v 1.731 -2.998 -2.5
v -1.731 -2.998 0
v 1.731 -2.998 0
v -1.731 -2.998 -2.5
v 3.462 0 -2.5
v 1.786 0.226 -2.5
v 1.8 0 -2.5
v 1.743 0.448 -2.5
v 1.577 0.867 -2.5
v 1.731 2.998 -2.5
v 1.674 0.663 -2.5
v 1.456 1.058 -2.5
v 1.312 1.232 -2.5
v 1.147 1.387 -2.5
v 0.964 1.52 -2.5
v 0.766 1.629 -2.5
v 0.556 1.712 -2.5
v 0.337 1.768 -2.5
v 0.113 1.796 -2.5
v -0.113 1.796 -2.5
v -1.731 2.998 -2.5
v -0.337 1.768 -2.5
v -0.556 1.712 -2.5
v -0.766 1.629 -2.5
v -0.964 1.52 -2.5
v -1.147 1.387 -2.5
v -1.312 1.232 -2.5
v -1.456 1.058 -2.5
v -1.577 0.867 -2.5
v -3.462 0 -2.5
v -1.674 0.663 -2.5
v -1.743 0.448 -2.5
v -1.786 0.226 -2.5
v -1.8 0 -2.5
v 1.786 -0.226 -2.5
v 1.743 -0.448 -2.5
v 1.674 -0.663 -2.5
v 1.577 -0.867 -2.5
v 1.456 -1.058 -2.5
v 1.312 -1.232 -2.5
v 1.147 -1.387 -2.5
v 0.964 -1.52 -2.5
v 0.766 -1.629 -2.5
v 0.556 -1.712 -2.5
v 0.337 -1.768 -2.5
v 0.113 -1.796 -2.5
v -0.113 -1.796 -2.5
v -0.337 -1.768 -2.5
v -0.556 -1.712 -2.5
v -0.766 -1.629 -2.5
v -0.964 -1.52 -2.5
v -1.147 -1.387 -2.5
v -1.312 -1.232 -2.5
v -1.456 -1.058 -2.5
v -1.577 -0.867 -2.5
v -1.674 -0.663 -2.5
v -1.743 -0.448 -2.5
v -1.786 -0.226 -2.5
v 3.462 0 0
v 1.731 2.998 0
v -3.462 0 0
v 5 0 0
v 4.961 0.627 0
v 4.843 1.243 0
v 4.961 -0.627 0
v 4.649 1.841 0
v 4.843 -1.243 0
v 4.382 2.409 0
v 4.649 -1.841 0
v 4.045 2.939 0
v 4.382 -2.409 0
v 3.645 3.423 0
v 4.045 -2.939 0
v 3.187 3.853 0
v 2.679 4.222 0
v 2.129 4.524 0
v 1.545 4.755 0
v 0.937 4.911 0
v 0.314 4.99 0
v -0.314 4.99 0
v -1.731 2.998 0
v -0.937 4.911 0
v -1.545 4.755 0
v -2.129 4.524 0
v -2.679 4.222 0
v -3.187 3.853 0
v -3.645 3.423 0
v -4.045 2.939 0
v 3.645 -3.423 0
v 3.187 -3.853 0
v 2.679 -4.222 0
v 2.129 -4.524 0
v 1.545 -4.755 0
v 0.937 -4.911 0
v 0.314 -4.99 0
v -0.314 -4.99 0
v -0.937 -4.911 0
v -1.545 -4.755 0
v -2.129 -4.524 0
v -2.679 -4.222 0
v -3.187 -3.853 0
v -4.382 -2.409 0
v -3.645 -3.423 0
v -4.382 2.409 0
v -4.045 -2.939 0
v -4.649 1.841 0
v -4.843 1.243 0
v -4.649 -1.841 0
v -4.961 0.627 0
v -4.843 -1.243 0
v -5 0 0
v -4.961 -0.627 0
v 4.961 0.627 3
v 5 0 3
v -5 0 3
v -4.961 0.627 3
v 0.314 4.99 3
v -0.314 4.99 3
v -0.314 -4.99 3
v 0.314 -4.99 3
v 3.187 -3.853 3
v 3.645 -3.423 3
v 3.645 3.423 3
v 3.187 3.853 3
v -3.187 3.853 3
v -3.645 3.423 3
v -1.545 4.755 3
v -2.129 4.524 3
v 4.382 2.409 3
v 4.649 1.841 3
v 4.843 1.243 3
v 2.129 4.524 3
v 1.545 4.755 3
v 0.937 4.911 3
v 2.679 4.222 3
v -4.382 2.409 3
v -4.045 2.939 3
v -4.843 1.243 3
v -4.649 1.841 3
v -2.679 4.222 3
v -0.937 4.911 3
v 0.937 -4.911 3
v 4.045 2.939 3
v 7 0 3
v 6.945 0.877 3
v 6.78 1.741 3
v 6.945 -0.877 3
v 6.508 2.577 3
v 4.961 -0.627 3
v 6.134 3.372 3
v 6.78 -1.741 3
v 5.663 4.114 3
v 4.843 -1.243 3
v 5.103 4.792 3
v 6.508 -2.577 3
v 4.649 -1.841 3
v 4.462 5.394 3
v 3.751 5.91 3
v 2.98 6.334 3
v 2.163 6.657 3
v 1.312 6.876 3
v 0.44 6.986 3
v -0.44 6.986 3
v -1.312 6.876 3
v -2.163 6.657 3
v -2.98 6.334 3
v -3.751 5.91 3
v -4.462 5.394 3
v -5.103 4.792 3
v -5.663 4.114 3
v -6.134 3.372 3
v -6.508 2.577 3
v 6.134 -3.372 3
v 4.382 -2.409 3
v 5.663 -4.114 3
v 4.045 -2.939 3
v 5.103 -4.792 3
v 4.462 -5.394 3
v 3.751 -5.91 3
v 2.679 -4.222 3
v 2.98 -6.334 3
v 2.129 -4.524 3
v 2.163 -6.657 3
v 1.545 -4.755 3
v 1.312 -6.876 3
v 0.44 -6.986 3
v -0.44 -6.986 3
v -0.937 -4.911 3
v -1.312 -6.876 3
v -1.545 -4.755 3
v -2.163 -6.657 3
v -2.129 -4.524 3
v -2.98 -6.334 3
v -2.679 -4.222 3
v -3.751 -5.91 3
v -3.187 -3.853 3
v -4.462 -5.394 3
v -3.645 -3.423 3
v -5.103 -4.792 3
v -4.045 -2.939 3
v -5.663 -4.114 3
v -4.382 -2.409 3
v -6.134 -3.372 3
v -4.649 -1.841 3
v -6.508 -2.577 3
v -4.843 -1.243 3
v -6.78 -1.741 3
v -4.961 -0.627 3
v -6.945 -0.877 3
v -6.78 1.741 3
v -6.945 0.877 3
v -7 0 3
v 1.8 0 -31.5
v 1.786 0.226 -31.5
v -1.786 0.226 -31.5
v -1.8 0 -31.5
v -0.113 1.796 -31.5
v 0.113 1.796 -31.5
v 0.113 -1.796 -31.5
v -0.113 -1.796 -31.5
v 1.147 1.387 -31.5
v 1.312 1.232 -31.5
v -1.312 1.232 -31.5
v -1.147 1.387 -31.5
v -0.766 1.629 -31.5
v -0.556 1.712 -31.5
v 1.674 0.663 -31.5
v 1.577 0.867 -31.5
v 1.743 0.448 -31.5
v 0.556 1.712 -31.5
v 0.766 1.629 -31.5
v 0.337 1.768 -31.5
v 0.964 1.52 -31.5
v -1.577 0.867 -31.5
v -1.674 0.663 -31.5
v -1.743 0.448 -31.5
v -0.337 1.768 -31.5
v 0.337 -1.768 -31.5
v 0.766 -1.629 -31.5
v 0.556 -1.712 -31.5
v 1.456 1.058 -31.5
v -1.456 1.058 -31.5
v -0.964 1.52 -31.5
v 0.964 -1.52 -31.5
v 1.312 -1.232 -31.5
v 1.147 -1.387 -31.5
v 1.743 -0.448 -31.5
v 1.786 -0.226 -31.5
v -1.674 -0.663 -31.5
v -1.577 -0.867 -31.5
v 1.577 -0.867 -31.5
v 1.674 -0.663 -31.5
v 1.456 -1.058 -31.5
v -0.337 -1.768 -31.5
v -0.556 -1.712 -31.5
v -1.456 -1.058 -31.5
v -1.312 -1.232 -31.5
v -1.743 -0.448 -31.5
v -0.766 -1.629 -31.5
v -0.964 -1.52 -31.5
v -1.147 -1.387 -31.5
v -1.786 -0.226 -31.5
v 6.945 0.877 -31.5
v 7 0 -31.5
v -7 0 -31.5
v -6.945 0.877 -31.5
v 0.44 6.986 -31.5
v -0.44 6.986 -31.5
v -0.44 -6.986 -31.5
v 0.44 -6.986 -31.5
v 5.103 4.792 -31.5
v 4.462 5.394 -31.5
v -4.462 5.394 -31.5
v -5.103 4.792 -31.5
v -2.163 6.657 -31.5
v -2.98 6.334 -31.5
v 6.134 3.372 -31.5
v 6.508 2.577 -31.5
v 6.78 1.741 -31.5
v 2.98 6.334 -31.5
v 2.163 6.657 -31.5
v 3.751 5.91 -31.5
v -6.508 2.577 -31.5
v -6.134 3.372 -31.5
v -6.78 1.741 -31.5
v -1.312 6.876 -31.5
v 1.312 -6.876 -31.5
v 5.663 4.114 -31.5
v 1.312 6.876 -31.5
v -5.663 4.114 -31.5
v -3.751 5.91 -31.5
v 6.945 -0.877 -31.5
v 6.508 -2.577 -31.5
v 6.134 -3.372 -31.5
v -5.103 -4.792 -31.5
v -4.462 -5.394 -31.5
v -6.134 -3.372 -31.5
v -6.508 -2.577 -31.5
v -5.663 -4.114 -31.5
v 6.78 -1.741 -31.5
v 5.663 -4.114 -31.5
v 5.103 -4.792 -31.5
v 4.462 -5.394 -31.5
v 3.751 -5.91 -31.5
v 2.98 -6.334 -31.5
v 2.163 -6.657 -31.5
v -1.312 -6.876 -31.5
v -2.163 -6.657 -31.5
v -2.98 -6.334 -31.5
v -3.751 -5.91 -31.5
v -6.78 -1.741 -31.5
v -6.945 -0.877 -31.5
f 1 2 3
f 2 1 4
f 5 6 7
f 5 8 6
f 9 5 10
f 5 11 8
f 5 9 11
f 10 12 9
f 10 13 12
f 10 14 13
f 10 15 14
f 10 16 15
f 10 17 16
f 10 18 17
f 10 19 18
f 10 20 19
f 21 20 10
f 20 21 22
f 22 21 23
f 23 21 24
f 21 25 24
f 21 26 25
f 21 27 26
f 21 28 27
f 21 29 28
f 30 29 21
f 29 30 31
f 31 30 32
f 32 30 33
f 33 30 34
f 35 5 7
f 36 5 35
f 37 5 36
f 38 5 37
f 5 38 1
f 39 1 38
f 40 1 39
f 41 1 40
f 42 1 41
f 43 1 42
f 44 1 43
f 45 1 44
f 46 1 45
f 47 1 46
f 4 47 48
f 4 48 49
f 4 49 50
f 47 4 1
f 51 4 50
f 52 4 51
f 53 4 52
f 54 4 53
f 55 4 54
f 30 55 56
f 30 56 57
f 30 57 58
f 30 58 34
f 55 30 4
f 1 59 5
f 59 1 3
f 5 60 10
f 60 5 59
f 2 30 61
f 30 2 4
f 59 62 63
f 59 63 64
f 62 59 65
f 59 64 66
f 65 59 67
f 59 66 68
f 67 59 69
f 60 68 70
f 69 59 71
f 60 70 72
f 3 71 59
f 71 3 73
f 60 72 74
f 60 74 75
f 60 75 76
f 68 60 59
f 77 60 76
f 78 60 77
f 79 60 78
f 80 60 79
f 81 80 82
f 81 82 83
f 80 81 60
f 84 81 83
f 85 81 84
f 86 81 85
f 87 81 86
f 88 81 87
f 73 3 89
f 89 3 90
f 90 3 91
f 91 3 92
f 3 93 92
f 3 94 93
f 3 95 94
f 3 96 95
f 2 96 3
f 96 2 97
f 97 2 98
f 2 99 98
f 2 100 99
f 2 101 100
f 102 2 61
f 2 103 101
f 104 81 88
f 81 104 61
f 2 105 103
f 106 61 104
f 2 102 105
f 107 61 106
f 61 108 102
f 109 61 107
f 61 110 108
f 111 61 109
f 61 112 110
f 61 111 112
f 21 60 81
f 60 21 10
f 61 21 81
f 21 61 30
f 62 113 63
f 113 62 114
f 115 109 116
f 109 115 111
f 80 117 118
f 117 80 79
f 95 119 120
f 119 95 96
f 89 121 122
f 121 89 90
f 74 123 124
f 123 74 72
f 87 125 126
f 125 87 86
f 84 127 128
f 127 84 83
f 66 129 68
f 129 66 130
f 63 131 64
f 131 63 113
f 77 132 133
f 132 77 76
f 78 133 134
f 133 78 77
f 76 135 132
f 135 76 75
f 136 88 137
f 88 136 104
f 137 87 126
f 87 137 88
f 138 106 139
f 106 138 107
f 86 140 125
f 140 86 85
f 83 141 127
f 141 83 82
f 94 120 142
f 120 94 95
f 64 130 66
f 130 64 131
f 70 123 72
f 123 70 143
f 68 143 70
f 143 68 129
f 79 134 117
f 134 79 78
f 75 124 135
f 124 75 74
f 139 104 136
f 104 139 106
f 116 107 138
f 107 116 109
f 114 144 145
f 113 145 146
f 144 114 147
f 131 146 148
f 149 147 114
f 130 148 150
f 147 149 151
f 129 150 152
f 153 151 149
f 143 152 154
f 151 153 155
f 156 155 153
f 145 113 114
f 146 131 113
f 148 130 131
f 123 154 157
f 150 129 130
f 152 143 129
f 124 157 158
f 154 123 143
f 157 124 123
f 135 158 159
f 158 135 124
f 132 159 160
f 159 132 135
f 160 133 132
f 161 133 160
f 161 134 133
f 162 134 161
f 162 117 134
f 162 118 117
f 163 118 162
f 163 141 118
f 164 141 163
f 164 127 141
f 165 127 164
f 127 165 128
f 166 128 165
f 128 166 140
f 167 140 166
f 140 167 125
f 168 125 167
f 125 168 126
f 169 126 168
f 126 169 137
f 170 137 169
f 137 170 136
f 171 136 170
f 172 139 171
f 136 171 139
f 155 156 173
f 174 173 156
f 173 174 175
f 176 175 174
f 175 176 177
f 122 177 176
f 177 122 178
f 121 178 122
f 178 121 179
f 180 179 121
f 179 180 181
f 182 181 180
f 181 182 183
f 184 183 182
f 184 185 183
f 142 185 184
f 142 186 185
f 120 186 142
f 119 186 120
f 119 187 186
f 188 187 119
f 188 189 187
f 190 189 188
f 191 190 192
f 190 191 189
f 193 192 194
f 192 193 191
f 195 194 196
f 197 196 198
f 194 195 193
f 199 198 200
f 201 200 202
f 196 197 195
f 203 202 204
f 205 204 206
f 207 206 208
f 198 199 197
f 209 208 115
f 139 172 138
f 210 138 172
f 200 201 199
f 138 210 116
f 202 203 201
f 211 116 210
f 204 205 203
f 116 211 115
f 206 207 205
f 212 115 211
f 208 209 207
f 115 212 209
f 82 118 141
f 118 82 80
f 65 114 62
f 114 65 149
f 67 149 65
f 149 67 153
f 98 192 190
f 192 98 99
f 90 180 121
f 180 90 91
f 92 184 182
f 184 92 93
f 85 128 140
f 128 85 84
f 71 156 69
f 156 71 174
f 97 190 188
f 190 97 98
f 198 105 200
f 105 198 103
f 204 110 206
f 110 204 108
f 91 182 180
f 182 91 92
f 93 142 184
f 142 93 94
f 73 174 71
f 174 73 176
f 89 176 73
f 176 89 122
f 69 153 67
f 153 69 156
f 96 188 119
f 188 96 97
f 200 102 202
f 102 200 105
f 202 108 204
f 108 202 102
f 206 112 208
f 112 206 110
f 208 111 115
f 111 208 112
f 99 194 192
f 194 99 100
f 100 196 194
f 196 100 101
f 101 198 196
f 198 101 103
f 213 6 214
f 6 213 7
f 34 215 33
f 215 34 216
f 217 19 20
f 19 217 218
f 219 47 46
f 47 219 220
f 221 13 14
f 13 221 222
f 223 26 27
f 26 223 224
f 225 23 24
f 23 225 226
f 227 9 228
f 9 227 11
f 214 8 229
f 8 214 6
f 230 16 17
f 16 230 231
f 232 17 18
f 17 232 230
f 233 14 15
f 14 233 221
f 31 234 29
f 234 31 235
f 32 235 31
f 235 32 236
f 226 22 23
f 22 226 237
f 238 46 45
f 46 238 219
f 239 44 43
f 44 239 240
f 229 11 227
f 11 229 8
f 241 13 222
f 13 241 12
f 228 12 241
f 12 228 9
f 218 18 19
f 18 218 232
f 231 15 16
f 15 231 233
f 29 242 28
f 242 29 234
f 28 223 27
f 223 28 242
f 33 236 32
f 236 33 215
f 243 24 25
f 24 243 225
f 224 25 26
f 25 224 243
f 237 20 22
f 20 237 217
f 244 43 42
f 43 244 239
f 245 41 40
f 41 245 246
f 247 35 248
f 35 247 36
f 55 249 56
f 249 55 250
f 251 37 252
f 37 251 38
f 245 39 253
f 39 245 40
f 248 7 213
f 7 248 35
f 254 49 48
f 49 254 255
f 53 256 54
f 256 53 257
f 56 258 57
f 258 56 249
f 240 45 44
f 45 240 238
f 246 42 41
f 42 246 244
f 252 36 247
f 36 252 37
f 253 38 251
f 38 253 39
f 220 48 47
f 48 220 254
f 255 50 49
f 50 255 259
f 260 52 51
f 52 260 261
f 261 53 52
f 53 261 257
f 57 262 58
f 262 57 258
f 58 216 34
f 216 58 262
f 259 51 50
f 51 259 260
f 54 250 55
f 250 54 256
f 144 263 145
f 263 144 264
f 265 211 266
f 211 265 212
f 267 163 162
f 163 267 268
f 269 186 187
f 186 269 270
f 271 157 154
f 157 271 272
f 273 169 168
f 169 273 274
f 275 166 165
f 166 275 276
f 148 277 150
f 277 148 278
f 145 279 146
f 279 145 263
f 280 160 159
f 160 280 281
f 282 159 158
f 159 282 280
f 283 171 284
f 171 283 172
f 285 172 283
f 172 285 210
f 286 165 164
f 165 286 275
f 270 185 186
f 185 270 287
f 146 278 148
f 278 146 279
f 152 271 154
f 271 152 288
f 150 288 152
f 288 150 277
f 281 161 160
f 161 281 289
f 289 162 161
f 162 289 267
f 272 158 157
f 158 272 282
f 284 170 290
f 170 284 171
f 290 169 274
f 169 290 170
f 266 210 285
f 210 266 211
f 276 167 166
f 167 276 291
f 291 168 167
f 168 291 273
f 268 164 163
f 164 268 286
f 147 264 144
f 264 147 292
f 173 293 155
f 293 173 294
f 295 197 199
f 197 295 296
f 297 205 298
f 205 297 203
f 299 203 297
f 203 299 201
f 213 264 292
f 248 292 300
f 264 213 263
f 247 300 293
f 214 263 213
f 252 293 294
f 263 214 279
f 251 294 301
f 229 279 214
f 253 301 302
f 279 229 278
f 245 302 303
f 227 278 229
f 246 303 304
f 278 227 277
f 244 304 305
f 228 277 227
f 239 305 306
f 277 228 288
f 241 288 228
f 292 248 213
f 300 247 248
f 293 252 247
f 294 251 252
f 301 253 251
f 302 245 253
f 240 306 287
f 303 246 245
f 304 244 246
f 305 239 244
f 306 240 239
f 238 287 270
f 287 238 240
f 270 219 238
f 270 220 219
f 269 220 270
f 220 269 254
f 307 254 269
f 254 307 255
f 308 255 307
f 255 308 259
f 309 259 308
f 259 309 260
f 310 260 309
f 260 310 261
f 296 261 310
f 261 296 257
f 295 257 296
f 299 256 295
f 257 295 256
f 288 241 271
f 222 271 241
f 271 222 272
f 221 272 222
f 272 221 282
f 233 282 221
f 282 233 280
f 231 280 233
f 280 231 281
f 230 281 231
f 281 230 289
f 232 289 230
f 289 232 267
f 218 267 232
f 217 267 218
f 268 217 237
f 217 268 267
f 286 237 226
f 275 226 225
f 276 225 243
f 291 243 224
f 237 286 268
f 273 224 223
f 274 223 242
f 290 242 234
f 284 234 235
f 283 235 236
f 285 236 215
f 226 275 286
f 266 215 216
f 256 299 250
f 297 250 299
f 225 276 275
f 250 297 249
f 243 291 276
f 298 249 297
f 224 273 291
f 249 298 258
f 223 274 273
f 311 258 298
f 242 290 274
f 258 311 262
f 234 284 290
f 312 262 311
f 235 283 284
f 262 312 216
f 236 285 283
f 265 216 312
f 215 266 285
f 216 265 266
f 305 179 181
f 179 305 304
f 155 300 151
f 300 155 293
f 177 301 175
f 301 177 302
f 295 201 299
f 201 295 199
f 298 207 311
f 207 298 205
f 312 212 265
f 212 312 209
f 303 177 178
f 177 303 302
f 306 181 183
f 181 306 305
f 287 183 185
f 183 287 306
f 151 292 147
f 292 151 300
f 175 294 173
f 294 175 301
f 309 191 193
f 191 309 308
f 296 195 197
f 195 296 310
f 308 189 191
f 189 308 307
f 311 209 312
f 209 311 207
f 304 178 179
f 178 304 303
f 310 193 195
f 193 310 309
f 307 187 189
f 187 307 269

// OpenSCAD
$fn = 50;


difference() {
	union() {
		translate(v = [0, 0, -31.5000000000]) {
			cylinder(h = 34.5000000000, r = 7.0000000000);
		}
	}
	union() {
		translate(v = [0, 0, 0]) {
			rotate(a = [0, 0, 0]) {
				difference() {
					union() {
						translate(v = [0, 0, -2.5000000000]) {
							linear_extrude(height = 2.5000000000) {
								polygon(points = [[3.4620000000, 0.0000000000], [1.7310000000, 2.9981799479], [-1.7310000000, 2.9981799479], [-3.4620000000, 0.0000000000], [-1.7310000000, -2.9981799479], [1.7310000000, -2.9981799479]]);
							}
						}
					}
					union();
				}
			}
		}
		#cylinder(h = 3, r = 5.0000000000);
		#translate(v = [0, 0, -100.0000000000]) {
			cylinder(h = 200, r = 1.8000000000);
		}
	}
}
